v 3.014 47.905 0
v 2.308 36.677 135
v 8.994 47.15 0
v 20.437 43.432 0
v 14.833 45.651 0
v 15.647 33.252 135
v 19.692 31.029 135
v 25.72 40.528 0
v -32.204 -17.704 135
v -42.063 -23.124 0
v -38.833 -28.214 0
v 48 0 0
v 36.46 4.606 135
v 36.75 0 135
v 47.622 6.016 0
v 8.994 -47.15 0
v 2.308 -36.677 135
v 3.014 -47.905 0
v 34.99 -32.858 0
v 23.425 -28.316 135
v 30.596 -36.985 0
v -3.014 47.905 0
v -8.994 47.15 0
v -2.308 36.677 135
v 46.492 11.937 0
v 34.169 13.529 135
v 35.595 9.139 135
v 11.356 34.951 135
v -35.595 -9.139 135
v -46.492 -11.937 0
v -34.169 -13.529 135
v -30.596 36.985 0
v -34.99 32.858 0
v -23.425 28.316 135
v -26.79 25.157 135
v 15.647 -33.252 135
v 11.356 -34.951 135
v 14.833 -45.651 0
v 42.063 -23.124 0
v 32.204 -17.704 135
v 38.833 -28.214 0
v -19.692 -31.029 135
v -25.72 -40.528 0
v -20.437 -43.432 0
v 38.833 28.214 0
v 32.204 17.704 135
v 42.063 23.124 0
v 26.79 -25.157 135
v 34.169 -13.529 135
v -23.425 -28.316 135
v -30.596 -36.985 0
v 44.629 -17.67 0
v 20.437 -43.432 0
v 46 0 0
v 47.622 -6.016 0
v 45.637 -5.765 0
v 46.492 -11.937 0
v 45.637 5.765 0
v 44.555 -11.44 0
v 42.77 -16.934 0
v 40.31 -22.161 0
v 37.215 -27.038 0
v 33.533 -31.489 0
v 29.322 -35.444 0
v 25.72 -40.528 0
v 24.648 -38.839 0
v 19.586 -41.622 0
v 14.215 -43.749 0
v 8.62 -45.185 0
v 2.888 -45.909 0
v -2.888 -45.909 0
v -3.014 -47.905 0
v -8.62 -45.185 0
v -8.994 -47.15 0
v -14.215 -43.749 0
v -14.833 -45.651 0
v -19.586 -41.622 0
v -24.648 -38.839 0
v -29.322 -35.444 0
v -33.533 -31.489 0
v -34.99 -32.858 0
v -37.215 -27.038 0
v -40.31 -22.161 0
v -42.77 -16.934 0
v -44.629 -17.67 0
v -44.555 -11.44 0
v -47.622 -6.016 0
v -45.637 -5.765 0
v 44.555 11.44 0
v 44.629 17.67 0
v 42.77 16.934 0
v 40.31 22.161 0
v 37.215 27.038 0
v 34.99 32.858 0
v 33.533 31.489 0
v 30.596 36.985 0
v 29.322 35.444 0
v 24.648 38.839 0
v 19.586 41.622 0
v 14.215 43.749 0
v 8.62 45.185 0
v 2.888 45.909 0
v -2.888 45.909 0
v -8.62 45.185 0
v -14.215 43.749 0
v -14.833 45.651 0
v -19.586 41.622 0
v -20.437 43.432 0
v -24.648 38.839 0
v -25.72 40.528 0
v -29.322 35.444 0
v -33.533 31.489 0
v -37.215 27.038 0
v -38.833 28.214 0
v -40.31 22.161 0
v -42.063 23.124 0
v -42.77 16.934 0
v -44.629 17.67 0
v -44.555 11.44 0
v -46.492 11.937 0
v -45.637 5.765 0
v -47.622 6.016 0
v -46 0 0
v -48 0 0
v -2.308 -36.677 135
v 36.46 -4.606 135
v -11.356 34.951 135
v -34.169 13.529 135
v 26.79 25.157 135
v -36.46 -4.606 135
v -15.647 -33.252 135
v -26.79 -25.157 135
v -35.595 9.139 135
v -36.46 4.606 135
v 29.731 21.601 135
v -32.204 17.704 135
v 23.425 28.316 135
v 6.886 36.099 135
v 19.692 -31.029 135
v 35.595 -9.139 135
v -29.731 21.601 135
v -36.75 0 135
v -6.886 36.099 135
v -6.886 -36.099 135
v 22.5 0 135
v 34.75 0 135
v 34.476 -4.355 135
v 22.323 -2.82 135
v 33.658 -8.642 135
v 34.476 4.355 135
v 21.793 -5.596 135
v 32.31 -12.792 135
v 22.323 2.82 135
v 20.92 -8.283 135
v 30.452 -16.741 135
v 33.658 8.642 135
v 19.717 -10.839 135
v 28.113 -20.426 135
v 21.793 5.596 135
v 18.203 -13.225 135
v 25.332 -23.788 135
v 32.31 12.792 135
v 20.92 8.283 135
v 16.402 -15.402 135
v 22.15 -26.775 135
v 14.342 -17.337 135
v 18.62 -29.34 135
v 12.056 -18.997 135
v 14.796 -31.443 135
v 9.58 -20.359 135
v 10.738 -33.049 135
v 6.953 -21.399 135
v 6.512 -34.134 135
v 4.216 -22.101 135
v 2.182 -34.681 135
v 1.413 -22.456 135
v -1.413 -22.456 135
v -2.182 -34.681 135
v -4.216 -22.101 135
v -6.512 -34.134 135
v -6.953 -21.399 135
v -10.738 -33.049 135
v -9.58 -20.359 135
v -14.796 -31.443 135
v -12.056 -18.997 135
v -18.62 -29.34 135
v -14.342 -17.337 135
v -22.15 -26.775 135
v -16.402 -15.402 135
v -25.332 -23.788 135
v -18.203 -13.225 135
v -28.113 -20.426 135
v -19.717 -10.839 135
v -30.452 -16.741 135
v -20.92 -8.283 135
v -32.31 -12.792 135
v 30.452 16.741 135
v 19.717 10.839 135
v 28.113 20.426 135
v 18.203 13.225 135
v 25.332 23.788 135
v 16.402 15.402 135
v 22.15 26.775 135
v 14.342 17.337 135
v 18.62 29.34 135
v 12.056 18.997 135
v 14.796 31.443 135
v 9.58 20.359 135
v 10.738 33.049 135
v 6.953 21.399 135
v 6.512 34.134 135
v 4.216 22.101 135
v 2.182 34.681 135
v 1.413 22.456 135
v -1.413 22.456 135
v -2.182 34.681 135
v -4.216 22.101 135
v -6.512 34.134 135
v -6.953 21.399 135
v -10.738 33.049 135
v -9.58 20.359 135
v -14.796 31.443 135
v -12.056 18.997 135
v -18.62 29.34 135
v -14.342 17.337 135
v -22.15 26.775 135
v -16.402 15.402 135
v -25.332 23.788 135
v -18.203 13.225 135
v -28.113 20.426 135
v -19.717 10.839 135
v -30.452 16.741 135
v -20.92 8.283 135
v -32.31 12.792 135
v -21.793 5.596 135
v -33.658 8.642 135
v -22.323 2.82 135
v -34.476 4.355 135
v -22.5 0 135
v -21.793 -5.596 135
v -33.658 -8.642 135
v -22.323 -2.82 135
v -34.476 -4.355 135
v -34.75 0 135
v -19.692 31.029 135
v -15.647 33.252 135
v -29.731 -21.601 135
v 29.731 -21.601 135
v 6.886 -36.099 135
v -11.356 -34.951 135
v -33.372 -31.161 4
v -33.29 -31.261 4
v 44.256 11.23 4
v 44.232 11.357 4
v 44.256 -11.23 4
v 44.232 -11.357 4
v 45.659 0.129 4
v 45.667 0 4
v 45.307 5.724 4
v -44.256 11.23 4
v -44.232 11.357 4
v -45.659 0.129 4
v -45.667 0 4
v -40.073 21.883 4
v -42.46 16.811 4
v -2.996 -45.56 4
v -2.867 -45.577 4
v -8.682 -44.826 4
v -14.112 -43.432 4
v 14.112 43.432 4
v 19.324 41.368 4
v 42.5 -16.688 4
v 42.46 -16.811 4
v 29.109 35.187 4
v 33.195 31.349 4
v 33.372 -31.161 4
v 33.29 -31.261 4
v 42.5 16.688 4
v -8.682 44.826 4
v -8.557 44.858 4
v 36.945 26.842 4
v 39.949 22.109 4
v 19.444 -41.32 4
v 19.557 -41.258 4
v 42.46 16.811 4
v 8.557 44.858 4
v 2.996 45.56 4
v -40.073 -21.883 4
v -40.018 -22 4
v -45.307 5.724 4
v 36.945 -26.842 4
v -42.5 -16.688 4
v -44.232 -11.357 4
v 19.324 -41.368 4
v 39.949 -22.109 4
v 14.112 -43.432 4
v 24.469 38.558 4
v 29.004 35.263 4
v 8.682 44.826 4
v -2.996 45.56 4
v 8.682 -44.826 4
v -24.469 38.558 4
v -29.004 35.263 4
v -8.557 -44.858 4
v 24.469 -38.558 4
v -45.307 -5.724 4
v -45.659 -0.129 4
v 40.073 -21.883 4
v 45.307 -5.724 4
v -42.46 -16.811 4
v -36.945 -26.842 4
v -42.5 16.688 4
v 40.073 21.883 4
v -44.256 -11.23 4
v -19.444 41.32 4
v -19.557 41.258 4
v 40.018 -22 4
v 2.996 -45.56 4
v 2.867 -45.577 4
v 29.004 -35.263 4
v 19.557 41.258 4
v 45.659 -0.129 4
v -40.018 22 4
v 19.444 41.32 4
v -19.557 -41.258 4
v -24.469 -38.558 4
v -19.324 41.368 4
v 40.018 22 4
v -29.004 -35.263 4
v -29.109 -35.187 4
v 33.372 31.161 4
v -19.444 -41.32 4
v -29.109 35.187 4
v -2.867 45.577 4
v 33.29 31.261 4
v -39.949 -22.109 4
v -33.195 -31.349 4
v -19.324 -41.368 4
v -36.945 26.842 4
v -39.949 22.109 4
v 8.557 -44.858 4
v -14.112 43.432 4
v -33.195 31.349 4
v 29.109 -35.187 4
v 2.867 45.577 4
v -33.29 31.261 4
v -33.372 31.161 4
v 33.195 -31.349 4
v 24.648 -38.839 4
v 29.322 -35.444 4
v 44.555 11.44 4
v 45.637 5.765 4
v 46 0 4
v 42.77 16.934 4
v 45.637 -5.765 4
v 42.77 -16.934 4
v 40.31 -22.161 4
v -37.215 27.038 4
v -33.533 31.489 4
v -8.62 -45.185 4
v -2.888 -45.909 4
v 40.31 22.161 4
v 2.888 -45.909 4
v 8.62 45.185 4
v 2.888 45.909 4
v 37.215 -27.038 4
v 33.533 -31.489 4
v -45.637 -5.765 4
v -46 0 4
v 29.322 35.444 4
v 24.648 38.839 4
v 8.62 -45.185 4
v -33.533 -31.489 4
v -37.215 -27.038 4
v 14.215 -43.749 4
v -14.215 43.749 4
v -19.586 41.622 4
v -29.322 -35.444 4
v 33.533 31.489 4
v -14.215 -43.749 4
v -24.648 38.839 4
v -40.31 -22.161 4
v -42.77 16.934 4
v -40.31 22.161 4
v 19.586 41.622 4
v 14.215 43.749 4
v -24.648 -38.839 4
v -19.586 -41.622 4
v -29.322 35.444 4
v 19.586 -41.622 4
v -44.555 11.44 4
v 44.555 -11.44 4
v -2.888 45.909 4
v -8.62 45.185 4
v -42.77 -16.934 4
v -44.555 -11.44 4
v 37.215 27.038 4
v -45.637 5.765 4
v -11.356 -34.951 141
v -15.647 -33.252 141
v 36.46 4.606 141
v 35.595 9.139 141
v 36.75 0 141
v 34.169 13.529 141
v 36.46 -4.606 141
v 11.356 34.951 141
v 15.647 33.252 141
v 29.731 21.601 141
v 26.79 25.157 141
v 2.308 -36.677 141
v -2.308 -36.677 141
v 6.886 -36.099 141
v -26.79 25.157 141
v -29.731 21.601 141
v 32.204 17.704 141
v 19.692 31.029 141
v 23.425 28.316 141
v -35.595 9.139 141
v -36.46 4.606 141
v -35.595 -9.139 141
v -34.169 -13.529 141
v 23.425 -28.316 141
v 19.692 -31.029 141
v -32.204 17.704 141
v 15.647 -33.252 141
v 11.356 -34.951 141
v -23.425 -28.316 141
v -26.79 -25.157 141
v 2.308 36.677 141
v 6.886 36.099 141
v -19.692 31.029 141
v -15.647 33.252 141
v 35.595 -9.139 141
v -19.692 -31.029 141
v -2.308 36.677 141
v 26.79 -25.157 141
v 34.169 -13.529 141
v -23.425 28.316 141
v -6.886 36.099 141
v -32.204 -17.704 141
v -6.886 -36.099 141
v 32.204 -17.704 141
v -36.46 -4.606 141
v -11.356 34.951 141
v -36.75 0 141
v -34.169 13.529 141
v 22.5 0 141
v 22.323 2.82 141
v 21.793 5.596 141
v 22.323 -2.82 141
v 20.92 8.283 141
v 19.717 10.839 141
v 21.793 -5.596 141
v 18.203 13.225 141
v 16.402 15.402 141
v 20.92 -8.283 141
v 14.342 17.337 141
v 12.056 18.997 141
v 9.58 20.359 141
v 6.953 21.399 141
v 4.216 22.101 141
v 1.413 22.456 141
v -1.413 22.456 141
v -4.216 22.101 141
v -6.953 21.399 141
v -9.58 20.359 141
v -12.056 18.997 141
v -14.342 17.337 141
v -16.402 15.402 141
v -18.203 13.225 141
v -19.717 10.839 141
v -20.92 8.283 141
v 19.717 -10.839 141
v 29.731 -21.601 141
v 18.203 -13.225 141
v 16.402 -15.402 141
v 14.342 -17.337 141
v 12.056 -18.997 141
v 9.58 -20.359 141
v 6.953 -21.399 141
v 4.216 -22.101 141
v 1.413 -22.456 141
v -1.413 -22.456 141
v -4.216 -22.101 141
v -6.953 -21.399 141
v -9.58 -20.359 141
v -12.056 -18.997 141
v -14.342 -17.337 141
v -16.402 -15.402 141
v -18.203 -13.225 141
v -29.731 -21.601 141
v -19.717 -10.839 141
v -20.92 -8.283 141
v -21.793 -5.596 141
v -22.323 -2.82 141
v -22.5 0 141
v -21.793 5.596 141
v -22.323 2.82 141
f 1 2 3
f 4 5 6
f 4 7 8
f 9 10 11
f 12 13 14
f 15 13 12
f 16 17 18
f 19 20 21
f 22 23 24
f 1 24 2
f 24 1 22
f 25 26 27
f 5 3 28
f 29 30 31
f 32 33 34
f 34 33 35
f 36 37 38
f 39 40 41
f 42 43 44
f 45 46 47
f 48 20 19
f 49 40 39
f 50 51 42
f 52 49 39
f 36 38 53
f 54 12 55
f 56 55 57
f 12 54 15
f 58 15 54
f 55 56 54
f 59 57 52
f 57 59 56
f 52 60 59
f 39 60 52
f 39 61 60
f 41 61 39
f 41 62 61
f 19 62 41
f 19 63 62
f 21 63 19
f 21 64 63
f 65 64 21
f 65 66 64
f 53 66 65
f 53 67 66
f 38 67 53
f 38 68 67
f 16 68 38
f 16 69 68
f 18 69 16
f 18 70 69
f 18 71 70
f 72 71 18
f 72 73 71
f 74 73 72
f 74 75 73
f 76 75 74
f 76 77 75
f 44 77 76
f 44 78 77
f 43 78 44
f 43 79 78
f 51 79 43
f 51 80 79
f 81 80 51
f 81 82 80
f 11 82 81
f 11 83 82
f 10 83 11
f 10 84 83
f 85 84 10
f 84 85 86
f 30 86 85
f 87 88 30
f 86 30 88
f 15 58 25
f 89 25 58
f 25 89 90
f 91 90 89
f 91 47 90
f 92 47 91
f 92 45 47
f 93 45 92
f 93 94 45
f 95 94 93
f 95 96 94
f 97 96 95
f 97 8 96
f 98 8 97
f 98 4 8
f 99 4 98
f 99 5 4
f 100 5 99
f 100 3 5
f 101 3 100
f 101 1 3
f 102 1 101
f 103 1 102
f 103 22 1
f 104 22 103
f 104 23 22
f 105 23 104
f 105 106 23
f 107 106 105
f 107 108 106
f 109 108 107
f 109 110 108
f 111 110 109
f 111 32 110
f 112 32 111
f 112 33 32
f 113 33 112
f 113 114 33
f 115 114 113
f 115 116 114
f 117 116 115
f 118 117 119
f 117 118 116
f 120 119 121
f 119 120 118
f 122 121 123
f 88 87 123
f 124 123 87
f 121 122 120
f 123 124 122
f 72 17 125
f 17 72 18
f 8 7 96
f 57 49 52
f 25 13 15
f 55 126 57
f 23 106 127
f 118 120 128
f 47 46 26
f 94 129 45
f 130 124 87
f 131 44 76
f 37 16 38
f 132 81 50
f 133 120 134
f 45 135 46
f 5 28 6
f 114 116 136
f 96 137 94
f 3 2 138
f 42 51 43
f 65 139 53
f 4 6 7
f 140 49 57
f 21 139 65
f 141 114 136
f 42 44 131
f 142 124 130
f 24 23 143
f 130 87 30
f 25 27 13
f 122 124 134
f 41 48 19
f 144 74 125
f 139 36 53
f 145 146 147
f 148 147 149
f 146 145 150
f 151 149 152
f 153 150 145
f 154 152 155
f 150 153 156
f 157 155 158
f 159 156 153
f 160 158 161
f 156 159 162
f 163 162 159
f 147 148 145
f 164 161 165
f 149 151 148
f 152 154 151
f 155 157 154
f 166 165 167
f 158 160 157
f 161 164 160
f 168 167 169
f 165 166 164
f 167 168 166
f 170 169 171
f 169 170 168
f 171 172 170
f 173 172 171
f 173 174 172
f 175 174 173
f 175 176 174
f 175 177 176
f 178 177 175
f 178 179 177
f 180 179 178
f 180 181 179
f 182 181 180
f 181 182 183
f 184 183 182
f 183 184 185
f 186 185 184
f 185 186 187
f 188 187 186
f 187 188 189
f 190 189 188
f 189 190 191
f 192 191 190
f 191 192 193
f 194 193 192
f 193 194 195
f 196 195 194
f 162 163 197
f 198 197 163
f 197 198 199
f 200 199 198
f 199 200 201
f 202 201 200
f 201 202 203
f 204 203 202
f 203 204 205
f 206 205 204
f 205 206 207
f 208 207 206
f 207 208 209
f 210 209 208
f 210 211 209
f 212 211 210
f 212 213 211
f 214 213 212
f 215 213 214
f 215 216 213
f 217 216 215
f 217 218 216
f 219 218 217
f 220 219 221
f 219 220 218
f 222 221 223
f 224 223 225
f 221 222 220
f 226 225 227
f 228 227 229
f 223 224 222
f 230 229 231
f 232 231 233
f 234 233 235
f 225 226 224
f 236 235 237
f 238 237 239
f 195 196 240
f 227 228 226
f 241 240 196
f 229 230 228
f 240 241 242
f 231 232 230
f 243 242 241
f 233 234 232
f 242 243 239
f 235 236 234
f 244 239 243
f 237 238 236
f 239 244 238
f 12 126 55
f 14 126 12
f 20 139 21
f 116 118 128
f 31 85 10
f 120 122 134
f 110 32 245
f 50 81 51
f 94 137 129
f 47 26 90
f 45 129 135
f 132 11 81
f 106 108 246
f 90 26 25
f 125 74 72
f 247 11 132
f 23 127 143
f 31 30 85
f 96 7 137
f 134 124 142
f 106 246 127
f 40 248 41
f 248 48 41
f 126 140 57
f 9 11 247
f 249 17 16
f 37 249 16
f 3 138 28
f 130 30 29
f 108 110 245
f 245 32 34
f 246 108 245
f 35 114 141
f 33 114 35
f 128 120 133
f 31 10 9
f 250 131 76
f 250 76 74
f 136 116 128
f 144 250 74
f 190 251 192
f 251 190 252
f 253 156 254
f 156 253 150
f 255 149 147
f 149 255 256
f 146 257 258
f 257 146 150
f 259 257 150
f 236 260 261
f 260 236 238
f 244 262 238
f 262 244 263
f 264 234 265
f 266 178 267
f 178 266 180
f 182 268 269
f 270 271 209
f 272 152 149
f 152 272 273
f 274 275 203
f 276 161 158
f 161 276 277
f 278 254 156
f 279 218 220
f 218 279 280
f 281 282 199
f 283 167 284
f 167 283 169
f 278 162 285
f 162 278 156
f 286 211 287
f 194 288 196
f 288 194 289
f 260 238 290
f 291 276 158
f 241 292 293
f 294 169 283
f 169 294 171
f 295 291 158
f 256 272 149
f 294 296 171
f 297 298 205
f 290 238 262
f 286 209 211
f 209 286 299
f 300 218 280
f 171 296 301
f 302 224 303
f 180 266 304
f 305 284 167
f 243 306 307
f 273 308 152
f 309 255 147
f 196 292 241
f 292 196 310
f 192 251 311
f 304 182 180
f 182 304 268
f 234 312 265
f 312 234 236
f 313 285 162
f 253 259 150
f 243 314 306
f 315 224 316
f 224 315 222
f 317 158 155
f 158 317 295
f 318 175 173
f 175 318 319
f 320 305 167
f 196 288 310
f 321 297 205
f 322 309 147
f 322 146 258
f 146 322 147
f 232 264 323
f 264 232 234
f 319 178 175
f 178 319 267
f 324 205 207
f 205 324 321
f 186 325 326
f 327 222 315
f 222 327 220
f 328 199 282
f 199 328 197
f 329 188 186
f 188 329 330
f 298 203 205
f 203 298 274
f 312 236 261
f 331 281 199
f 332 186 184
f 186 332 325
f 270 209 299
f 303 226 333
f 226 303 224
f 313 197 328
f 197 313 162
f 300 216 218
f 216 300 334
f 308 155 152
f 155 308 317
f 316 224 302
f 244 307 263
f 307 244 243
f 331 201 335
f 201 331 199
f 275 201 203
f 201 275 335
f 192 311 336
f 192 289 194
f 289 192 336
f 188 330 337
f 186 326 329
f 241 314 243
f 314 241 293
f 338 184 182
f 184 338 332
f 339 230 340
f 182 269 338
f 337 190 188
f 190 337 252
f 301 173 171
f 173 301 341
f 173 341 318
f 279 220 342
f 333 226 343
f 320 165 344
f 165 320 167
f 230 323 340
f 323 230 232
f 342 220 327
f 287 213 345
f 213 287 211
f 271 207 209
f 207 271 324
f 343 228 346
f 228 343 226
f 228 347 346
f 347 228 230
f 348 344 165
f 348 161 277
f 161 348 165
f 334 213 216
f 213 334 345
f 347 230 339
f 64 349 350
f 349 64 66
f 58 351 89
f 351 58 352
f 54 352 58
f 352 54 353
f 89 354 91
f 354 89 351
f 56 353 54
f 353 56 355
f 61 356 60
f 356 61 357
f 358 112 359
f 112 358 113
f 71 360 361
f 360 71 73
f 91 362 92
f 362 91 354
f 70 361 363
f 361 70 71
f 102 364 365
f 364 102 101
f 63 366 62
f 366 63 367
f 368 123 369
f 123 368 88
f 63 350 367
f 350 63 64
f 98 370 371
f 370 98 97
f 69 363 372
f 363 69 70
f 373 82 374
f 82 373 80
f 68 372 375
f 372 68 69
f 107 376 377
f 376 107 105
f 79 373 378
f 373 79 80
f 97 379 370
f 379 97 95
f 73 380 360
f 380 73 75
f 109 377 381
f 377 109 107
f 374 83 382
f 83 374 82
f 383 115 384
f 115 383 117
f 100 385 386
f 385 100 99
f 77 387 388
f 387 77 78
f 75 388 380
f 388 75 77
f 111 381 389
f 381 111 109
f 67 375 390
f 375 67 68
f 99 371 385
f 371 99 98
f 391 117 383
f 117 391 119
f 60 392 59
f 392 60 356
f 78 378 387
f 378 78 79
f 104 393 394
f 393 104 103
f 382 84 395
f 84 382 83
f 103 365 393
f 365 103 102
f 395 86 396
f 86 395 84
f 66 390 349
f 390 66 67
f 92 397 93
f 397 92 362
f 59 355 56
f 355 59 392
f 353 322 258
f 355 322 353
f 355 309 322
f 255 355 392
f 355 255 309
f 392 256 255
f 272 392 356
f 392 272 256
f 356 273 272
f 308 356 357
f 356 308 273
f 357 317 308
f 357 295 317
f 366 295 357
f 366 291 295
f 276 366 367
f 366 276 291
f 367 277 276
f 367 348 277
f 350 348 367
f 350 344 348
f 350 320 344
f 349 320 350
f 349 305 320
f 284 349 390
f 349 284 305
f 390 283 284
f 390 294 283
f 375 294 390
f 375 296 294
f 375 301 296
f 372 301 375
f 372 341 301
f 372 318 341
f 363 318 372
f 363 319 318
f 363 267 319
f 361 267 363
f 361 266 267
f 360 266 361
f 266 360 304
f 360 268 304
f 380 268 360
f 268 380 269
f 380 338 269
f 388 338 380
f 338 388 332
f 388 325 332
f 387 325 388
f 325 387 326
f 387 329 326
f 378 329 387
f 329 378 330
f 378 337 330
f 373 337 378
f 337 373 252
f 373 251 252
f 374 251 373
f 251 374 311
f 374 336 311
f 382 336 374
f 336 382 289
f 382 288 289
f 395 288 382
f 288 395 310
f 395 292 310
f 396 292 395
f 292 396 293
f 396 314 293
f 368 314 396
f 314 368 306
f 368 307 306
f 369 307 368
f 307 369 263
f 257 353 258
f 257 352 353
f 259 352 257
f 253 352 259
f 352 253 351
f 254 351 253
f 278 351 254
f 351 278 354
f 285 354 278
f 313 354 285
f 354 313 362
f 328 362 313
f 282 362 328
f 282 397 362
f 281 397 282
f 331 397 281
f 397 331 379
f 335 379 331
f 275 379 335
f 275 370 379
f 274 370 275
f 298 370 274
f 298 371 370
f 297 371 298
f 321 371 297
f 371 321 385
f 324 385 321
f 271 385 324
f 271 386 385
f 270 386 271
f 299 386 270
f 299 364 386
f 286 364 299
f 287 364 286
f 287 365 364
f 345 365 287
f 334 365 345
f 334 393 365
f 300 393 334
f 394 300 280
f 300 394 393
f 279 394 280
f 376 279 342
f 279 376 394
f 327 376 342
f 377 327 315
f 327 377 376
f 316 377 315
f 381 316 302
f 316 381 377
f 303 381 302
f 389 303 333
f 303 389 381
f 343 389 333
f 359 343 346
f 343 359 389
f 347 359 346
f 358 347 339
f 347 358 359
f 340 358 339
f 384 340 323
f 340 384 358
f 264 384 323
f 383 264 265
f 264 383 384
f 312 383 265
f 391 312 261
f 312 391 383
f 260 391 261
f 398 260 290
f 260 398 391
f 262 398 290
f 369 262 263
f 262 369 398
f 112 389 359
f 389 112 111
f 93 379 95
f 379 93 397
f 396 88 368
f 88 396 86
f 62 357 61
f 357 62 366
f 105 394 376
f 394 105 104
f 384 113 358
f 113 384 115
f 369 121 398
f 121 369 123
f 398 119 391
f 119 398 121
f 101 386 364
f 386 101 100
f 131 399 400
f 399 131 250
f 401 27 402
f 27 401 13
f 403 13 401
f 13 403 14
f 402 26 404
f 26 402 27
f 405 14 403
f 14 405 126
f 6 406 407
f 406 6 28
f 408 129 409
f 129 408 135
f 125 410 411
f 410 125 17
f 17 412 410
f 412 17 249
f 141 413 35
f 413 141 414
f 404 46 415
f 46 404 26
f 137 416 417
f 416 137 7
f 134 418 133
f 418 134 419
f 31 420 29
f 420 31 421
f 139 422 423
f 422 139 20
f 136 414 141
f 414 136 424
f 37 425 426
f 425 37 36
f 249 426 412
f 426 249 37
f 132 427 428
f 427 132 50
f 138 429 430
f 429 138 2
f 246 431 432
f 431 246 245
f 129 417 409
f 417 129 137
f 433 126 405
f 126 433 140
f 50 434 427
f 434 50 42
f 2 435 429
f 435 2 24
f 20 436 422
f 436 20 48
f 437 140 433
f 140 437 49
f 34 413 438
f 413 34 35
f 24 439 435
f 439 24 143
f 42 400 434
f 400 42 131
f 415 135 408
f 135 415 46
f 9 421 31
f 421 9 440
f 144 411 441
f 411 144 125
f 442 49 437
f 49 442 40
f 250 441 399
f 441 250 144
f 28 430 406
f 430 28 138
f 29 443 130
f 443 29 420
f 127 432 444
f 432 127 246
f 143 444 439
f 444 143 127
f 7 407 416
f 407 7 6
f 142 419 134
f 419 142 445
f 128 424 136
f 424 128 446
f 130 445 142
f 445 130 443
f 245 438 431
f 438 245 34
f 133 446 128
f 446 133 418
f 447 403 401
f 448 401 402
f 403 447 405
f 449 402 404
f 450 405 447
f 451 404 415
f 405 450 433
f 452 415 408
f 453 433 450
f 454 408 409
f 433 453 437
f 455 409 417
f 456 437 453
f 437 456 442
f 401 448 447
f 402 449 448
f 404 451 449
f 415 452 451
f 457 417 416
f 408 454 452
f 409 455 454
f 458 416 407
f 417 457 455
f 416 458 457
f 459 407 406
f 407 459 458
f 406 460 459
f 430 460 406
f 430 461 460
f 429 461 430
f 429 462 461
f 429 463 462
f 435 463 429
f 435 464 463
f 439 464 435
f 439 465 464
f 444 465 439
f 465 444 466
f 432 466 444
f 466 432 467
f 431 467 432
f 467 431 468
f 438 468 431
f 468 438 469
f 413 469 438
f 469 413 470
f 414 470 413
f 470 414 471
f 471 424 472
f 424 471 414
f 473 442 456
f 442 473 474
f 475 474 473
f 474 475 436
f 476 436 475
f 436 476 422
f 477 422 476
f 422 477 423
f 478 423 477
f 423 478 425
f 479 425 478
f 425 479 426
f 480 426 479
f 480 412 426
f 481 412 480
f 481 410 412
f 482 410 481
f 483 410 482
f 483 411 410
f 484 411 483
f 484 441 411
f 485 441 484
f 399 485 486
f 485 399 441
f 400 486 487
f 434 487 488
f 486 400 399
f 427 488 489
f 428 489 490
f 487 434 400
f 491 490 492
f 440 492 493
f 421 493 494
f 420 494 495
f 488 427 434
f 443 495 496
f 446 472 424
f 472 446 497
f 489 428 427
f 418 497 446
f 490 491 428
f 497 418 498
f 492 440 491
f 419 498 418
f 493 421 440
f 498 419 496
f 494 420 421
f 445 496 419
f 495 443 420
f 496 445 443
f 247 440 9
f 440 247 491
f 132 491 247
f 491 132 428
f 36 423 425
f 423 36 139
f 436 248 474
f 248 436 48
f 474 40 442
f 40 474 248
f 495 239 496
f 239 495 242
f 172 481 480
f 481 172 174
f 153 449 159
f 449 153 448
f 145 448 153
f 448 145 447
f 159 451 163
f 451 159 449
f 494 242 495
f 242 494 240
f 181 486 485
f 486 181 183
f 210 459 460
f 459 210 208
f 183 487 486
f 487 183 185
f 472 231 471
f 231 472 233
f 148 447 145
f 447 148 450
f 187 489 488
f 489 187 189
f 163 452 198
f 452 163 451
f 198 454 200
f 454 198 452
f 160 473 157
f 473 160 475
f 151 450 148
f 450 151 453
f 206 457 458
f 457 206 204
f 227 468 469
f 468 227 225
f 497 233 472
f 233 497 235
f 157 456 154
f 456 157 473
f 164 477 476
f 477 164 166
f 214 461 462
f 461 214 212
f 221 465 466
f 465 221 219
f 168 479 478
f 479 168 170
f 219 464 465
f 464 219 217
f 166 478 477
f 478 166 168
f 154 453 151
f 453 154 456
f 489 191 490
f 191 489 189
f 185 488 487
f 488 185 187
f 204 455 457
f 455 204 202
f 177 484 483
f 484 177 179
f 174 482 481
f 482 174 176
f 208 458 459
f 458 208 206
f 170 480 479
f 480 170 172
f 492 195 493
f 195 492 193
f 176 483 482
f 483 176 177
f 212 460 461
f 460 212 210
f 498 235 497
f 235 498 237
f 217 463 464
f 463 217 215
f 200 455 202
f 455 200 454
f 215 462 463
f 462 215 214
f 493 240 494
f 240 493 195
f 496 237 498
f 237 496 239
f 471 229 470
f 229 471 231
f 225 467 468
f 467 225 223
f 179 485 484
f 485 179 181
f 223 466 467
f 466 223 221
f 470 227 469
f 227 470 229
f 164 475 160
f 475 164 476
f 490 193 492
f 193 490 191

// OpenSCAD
/*
Driver specs:
mounting bushing(?) outside diameter: 90
mounting bushing(?) height: 3.67
mounting flange: 92.5x92.5x0.88
*/

DRIVER_DIAMETER = 90;
BUSHING_HEIGHT = 4;
TOLERANCE = 1;
WALL_THICKNESS = 3;

$fn=50;

// TODO: Mounting flange
// TODO: smoke manifold
// TODO: LED mount(s)

// main body
difference(){
    // outer wall
    cylinder(
        r1=(DRIVER_DIAMETER/2)+WALL_THICKNESS,
        r2=((DRIVER_DIAMETER*.75)/2)+WALL_THICKNESS,
        h=DRIVER_DIAMETER*1.5
    );
    
    // cut-out
    cylinder(
        r1=(DRIVER_DIAMETER/2)+TOLERANCE,
        r2=((DRIVER_DIAMETER*.75)/2)+TOLERANCE,
        h=DRIVER_DIAMETER*1.5
    );
    
    // bushing cut-out
    cylinder(
        r=(DRIVER_DIAMETER/2)+TOLERANCE,
        h=BUSHING_HEIGHT
    );
}

// nozzle
translate([0,0,DRIVER_DIAMETER*1.5]){
    difference(){
        cylinder(
            r=((DRIVER_DIAMETER*.75)/2)+WALL_THICKNESS,
            h=WALL_THICKNESS*2
        );
        cylinder(
            r=DRIVER_DIAMETER/4,
            h=WALL_THICKNESS*2
        );
    }
}

    
